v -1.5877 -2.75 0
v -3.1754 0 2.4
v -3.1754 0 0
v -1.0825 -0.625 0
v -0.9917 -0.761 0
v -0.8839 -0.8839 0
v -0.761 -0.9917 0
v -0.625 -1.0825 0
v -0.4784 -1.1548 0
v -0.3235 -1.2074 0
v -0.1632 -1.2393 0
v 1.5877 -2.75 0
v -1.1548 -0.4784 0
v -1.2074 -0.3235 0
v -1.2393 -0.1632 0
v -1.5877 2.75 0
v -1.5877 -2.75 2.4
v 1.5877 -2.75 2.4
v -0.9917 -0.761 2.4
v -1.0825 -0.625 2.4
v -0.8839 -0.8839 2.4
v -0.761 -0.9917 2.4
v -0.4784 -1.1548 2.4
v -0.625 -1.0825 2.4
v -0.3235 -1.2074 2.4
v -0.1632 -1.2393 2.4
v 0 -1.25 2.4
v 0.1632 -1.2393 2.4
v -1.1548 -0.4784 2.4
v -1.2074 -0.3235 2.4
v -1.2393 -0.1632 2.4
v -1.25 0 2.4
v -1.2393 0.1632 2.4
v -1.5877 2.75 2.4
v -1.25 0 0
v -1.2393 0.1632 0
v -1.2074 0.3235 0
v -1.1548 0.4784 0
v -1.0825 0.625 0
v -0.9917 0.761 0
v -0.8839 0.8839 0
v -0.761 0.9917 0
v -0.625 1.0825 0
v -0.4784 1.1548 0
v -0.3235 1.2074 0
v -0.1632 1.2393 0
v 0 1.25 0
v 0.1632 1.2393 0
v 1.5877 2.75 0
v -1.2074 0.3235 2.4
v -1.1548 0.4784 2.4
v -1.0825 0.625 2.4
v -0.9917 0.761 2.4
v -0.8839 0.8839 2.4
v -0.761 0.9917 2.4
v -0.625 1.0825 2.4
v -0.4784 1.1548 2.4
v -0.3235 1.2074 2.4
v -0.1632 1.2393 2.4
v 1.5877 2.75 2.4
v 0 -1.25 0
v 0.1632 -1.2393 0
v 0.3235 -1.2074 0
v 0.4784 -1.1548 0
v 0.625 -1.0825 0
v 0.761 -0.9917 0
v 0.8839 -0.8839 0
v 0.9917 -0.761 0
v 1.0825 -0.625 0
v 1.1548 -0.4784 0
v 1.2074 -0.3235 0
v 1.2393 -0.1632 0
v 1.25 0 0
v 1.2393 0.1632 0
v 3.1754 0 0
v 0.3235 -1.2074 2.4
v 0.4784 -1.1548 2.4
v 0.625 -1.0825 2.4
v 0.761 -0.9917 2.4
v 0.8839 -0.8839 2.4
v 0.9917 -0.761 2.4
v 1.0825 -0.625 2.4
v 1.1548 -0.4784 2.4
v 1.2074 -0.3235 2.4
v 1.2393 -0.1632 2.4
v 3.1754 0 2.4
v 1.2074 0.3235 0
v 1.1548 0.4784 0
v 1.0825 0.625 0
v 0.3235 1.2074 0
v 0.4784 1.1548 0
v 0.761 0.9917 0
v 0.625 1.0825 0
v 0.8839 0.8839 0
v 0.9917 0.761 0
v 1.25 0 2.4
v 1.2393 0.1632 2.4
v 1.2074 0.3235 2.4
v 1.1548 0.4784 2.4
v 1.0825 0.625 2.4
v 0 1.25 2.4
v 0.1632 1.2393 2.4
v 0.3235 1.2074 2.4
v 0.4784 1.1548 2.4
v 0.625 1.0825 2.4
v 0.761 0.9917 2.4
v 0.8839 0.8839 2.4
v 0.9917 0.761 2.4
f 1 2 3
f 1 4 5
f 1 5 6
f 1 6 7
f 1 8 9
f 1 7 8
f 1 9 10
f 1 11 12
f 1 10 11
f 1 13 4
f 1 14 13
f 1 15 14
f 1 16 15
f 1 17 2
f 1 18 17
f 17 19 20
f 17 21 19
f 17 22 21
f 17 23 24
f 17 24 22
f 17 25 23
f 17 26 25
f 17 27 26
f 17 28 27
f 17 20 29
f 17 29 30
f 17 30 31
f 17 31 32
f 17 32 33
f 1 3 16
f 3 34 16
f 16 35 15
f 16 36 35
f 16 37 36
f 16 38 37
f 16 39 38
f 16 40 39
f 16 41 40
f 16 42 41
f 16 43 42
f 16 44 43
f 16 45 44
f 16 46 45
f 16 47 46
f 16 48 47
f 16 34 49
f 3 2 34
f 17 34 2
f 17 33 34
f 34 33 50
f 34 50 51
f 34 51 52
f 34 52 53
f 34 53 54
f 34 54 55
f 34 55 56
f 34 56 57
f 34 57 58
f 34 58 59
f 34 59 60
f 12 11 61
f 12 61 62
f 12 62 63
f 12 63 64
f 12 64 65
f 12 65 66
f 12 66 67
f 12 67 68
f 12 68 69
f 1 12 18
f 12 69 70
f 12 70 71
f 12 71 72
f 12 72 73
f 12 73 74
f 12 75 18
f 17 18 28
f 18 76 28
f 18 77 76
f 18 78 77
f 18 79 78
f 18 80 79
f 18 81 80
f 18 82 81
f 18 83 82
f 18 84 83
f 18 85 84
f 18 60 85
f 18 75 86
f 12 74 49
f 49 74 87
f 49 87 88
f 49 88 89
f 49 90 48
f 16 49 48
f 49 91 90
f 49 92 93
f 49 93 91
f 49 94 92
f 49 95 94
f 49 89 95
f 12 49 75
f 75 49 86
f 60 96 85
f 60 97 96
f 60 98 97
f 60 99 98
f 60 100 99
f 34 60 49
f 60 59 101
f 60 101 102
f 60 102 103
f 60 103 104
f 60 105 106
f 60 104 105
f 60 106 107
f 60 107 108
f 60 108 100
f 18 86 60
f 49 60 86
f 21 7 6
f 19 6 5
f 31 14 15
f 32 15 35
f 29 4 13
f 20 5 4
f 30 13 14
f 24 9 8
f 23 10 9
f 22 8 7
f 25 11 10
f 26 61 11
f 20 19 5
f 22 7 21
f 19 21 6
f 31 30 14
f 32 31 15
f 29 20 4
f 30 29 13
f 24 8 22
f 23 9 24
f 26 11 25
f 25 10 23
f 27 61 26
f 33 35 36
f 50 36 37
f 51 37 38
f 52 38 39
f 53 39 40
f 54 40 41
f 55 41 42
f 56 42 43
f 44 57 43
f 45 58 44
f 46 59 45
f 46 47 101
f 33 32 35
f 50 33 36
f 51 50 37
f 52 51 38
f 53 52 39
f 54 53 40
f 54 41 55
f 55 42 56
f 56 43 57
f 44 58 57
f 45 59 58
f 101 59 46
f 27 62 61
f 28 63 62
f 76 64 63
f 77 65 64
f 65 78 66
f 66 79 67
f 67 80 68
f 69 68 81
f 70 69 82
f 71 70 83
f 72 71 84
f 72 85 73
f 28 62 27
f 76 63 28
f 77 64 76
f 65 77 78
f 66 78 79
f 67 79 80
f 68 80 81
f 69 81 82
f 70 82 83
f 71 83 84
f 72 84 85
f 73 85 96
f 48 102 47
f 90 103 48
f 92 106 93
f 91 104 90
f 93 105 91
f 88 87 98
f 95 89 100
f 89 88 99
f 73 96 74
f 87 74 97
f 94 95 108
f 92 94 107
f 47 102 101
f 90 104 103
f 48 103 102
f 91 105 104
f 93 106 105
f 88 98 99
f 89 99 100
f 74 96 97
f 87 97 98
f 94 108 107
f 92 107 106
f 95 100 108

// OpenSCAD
// Nominal, thread-free purchased hardware envelopes for fit and instruction views.
module nut() {
    difference() {
        cylinder(h=2.4,r=5.5/sqrt(3),$fn=6);
        translate([0,0,-0.1]) cylinder(h=2.6,d=2.5,$fn=48);
    }
}
module screw() {
    difference() {
        union() {
            cylinder(h=1.5,d1=6,d2=3,$fn=48);
            translate([0,0,1.49]) cylinder(h=10.51,d=3,$fn=48);
        }
        translate([0,0,-0.01]) cylinder(h=1.1,d=2*2/sqrt(3),$fn=6);
    }
}

nut();
